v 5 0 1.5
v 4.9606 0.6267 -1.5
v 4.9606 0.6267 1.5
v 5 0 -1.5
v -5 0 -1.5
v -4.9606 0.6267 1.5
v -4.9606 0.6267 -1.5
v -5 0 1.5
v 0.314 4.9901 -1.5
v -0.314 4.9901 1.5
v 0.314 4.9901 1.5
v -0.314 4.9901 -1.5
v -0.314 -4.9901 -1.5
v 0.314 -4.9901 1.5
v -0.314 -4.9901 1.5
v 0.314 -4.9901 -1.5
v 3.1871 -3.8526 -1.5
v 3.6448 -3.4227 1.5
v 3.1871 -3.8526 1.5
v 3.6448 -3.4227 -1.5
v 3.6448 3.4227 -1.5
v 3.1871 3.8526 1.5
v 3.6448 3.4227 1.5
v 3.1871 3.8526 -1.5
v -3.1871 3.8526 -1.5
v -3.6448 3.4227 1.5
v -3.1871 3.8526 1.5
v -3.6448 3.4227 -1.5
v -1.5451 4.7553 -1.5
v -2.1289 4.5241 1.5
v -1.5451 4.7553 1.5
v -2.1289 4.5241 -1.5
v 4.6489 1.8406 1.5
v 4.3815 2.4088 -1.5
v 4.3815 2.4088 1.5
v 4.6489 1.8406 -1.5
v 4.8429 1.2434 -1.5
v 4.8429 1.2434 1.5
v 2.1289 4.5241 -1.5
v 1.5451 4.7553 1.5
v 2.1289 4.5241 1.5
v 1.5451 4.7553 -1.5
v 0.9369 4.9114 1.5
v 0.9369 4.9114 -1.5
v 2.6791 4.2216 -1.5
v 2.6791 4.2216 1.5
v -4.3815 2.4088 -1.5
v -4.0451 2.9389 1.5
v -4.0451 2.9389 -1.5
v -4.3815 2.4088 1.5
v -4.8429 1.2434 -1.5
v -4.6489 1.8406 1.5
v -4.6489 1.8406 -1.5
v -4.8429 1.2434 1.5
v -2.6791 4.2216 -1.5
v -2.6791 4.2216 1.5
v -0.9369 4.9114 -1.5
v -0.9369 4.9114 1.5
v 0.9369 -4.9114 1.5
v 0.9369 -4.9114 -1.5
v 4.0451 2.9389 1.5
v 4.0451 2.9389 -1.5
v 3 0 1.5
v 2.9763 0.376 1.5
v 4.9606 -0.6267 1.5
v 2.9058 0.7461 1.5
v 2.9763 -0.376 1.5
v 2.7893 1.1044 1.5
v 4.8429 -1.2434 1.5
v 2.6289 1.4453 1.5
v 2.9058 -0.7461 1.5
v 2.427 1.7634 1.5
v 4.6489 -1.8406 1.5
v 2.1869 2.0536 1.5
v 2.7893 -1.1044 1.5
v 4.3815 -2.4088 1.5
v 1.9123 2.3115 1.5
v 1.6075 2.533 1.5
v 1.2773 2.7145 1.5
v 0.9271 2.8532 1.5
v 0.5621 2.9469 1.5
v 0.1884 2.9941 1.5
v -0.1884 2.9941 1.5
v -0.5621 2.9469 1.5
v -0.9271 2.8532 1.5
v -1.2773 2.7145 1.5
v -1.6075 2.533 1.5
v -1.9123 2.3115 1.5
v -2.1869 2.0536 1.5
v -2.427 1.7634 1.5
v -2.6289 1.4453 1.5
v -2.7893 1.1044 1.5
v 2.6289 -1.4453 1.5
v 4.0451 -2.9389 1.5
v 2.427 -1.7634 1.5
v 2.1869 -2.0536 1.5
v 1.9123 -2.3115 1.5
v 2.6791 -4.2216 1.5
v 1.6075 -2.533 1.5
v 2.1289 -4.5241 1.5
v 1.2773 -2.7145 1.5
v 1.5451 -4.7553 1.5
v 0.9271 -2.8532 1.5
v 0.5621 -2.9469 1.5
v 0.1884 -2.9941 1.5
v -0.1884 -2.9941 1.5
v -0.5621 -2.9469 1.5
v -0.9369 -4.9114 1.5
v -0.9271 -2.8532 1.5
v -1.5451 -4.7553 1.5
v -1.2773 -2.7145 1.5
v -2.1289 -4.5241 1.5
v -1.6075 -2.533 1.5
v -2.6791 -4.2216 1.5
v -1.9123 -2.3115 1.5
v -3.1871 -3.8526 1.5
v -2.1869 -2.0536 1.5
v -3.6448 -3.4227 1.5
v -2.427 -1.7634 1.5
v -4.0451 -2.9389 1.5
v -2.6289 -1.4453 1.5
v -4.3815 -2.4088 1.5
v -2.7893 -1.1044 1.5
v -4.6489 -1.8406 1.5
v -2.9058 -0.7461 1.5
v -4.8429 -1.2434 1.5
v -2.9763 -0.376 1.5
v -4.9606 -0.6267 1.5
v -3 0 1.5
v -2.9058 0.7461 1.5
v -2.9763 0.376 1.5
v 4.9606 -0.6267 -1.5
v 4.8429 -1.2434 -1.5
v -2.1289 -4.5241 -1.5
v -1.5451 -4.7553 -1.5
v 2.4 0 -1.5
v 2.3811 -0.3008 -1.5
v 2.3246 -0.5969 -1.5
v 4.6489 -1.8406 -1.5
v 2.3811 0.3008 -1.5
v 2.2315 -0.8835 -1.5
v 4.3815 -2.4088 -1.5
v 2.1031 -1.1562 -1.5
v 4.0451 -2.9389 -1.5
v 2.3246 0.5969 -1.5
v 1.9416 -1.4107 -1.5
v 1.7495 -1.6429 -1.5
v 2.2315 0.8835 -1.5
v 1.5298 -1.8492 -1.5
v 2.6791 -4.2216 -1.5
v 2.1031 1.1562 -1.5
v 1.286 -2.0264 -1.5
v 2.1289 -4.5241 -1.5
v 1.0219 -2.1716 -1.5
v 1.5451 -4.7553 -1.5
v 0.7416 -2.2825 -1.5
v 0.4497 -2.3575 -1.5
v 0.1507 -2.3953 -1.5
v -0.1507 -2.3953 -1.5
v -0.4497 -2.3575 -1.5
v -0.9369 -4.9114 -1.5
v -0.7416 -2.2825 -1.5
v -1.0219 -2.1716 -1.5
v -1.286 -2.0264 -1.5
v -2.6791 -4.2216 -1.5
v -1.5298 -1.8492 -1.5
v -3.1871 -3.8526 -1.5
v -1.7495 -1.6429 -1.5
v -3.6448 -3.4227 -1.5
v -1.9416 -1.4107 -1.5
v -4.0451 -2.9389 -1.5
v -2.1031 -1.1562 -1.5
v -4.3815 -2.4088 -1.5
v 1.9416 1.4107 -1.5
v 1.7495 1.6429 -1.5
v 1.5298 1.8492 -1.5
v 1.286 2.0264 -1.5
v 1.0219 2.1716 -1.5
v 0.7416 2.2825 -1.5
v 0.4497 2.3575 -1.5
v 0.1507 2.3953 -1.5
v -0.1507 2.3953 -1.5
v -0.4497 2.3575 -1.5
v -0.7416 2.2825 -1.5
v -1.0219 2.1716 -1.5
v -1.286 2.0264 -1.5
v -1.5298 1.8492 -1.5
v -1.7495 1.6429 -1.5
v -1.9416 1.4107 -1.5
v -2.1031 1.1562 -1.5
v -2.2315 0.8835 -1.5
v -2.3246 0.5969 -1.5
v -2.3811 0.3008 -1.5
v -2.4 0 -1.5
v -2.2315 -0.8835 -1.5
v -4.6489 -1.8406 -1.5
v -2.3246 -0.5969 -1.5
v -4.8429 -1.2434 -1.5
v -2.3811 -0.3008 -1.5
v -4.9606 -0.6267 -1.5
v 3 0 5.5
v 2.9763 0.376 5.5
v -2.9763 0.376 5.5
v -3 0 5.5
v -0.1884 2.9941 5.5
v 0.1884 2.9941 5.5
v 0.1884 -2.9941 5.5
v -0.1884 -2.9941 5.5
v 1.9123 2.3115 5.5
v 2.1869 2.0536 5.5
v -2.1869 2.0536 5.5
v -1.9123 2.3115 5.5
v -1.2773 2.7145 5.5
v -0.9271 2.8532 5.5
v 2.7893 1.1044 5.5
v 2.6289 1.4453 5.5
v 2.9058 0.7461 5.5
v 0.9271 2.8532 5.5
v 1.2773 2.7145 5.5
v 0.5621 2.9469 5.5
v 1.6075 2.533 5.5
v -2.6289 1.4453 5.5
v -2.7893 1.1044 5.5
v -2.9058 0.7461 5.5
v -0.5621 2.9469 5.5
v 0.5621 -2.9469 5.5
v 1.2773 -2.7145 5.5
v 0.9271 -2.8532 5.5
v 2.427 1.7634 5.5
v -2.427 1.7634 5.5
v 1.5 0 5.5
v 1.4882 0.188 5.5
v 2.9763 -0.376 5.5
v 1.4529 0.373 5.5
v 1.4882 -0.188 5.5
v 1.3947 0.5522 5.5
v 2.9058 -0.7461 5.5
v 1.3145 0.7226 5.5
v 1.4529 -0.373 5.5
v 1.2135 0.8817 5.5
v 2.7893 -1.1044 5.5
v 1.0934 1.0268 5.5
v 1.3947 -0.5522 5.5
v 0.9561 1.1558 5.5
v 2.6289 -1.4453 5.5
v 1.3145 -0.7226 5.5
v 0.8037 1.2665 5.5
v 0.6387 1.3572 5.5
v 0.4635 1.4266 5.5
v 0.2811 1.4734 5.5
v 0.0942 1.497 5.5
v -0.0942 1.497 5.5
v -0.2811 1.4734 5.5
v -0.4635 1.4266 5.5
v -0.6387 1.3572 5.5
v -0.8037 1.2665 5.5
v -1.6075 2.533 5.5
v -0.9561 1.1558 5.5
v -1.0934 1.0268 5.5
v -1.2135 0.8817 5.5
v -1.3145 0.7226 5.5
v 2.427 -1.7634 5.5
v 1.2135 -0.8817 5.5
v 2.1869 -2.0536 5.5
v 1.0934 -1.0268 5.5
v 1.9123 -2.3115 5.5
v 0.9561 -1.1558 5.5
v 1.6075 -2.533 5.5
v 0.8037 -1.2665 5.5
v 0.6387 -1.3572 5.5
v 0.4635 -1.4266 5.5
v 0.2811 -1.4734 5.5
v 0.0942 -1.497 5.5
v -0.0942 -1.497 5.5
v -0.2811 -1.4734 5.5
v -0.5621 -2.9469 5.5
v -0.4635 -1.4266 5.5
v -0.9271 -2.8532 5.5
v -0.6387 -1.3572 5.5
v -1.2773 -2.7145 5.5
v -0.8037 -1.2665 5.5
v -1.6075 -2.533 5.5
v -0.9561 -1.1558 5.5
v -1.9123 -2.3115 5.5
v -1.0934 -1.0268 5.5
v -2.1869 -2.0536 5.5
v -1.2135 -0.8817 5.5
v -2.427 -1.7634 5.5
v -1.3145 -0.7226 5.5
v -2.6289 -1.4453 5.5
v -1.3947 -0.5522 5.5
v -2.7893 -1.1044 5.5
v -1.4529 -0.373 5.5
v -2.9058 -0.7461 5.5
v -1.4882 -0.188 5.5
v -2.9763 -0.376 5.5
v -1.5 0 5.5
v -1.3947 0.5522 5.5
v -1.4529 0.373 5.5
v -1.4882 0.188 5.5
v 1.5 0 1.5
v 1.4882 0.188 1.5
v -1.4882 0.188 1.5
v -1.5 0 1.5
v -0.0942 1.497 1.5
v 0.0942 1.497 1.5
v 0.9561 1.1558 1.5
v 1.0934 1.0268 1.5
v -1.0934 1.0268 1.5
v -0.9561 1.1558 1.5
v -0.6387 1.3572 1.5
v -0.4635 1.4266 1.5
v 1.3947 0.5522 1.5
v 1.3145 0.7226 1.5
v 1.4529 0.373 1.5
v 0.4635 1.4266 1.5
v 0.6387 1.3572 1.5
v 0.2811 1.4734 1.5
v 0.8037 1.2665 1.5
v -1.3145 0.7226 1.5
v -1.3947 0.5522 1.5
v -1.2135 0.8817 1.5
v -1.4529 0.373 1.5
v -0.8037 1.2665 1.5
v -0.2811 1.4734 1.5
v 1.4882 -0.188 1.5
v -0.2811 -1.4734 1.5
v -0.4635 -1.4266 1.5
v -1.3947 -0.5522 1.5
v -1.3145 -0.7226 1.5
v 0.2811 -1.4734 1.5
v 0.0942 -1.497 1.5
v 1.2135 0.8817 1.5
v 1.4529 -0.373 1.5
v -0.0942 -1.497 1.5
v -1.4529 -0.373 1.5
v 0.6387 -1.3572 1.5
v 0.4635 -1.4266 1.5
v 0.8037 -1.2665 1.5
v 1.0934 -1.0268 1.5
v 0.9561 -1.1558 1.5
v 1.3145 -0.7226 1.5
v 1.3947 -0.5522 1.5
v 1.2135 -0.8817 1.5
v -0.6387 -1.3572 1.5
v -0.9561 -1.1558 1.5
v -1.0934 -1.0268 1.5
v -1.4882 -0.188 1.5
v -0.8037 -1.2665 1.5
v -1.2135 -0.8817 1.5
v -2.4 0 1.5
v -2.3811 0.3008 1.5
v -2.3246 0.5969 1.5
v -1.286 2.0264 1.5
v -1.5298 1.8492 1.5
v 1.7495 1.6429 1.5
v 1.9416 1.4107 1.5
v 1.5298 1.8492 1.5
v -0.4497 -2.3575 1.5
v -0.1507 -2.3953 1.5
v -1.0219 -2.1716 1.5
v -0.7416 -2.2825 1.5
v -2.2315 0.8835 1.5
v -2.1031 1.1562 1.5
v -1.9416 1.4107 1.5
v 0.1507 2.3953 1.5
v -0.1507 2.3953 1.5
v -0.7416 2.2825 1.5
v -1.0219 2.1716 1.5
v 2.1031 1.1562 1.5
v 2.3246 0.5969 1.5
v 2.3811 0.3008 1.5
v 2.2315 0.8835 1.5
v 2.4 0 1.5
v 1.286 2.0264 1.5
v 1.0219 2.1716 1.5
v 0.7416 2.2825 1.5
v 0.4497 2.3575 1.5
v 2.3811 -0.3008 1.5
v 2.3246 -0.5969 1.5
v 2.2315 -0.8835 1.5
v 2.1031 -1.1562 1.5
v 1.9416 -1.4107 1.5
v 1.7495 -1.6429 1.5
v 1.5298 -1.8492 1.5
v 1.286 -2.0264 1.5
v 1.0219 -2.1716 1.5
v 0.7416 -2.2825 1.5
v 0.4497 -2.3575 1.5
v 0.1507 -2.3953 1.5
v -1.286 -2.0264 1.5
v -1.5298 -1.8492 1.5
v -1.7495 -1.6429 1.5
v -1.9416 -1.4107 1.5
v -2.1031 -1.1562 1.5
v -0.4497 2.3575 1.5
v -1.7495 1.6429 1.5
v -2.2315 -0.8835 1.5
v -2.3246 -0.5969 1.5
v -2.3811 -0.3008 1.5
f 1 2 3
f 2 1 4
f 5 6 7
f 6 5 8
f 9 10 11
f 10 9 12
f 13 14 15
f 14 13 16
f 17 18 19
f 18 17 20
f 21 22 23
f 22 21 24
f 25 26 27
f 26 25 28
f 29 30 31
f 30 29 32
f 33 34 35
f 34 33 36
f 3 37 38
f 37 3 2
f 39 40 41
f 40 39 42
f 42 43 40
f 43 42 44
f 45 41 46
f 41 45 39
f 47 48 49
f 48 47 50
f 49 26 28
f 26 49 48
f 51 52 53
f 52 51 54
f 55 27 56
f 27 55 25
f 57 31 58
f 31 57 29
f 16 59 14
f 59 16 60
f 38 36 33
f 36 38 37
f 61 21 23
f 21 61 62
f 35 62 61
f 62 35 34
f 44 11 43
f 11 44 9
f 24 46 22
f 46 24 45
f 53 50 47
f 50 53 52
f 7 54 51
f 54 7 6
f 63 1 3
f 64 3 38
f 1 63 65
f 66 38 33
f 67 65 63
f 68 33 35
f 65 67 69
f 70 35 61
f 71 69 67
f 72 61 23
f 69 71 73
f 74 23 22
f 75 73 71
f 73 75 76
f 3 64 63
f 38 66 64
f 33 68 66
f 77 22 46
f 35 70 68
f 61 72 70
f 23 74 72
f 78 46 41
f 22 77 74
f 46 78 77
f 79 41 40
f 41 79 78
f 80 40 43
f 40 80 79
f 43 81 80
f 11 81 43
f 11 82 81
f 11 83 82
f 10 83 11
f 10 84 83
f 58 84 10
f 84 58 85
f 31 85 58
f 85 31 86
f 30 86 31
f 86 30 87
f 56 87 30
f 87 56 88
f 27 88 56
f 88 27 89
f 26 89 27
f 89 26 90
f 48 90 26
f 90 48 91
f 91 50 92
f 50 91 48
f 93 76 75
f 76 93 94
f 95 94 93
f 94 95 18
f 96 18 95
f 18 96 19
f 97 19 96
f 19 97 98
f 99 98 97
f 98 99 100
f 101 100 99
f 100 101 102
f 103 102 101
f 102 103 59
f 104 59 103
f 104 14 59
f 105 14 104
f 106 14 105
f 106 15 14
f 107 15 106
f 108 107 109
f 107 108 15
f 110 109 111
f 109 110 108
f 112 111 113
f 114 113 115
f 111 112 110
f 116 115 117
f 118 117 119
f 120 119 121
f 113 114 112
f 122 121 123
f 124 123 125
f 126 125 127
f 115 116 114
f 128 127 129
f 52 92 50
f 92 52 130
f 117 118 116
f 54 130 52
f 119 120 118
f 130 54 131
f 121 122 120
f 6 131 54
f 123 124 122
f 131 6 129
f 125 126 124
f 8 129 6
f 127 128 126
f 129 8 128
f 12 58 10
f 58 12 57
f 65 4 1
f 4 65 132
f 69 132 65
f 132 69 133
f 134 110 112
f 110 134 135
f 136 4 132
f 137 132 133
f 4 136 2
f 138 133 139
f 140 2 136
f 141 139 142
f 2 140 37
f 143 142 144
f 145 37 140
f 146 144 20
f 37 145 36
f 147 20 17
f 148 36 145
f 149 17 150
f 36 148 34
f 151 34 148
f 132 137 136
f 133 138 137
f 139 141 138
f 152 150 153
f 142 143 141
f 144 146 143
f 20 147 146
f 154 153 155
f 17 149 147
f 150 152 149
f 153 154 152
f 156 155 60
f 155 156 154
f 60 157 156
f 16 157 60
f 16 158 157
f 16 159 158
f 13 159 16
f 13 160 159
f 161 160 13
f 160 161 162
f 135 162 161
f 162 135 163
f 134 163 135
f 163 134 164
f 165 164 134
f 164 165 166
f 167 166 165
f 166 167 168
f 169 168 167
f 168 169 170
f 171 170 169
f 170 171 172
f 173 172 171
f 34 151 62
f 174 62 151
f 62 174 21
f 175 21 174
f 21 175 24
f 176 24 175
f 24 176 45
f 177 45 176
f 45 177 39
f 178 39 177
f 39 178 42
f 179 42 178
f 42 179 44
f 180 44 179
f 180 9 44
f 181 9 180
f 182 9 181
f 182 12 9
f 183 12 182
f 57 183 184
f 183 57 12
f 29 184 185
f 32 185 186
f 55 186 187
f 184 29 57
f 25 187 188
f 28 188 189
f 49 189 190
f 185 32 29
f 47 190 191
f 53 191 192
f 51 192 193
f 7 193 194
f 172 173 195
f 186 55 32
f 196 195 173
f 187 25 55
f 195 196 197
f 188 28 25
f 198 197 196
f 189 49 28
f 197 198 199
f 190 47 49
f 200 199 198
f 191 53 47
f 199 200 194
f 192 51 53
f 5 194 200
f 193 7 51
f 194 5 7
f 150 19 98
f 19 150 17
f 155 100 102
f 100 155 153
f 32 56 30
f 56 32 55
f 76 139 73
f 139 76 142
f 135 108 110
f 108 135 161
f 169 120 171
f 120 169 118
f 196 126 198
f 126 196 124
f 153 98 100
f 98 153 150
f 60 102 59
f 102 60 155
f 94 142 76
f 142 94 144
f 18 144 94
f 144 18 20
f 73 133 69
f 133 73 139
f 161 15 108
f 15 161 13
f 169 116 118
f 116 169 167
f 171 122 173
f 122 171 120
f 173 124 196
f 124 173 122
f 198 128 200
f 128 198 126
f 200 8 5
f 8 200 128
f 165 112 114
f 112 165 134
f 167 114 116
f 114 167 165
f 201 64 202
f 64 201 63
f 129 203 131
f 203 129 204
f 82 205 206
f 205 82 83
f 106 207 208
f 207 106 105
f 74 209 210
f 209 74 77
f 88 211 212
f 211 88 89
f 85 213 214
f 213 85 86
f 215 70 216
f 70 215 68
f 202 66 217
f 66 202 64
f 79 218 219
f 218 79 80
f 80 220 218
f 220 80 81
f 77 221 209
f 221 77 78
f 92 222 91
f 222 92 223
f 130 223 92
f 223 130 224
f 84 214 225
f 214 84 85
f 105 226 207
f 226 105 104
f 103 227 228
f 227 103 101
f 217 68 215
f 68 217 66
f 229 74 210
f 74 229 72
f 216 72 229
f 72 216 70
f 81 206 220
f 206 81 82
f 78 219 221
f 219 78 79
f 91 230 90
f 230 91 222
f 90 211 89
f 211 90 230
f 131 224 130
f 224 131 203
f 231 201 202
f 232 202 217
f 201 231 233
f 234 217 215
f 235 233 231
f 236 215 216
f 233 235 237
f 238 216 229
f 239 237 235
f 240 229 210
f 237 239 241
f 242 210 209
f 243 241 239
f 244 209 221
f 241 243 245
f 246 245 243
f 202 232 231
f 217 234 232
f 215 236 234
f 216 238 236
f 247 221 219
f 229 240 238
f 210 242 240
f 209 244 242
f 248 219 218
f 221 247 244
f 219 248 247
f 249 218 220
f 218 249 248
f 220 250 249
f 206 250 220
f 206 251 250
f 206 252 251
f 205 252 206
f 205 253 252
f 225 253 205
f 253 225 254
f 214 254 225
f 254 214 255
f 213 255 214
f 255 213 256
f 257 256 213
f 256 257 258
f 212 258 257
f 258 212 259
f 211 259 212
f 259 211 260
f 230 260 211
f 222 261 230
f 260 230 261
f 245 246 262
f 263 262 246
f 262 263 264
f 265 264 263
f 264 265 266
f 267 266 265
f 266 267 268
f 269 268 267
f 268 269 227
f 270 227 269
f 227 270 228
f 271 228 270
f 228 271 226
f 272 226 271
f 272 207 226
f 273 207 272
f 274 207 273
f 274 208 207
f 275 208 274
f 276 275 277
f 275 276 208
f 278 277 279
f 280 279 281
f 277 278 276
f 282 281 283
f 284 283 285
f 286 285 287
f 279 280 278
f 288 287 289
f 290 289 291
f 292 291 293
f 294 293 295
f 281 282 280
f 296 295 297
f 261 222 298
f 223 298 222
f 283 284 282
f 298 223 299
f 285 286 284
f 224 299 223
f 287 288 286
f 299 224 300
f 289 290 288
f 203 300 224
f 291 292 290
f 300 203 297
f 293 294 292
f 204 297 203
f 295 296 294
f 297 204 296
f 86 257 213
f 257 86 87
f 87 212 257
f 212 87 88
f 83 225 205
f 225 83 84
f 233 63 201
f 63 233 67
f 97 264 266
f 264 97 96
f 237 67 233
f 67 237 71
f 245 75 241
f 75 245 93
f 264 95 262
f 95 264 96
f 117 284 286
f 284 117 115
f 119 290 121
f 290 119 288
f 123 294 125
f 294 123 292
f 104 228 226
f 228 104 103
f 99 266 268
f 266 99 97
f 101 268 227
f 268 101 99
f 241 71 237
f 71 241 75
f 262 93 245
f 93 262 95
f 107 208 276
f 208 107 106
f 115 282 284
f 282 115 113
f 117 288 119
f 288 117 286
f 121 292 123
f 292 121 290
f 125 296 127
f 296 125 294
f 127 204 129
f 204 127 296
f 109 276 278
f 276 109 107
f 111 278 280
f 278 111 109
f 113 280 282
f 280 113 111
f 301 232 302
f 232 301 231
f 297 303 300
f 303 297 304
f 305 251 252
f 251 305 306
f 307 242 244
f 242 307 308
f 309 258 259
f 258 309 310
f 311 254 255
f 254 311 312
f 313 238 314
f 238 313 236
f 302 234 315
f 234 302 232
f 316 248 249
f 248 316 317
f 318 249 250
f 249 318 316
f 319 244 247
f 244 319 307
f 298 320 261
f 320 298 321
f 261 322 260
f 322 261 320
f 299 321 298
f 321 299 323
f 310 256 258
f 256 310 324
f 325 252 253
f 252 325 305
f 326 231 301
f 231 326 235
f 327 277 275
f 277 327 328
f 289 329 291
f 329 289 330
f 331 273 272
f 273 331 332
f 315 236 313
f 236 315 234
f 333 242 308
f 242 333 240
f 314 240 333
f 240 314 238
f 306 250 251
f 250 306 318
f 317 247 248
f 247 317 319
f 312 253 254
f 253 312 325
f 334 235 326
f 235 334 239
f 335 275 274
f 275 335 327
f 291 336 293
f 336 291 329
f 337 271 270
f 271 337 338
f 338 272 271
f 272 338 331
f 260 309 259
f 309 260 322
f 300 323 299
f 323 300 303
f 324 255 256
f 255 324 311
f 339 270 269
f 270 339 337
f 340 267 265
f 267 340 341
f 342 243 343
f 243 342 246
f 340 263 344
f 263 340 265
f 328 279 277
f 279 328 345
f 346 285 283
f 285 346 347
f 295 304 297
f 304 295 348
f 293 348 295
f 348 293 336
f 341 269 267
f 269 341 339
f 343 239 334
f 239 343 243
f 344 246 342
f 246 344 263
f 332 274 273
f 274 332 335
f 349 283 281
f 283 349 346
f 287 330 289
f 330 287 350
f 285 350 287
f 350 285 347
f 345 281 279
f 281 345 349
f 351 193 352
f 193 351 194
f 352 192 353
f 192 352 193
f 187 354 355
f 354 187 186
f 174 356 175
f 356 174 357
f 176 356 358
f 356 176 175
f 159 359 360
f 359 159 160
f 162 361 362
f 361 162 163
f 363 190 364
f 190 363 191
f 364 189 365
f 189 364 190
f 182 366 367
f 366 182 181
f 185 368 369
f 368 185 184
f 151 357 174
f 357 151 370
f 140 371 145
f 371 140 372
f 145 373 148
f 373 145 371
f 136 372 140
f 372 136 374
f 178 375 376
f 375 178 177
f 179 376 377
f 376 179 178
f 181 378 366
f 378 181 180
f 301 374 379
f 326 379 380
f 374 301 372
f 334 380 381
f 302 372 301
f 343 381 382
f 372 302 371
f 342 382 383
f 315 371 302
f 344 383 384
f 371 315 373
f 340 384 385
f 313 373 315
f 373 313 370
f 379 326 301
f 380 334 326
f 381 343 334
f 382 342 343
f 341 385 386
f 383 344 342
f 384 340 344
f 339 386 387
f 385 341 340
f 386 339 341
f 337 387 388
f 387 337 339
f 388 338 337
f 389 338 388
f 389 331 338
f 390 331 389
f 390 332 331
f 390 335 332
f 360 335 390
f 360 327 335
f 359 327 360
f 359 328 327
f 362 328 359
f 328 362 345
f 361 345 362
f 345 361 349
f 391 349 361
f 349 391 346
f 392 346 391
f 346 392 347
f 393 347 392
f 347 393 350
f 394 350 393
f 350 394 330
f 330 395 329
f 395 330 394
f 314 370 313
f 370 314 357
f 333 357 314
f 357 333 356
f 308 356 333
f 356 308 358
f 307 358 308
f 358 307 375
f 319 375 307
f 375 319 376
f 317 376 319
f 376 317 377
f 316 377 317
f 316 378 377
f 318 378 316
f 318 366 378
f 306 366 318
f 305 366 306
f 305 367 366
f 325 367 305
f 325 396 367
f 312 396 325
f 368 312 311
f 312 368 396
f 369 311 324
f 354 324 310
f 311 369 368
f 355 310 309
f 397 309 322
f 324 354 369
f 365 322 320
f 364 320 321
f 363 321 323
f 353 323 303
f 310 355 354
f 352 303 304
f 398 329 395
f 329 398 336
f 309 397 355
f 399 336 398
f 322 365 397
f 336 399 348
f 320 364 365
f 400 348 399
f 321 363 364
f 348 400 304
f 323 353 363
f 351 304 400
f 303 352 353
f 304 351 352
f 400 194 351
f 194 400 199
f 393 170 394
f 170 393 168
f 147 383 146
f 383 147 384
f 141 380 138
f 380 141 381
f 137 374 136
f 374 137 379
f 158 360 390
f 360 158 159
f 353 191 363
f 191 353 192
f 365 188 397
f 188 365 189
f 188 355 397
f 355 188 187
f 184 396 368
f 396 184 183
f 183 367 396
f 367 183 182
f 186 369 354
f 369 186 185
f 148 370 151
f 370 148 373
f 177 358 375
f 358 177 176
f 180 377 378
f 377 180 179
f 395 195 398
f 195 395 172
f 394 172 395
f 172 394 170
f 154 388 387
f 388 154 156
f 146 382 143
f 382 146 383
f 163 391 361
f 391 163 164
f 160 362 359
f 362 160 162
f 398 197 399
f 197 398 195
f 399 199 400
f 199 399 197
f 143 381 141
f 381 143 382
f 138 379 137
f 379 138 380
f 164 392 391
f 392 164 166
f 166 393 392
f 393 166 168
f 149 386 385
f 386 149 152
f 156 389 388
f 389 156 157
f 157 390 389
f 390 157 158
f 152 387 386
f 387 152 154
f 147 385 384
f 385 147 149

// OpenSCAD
$fn = 50;


difference() {
	union() {
		translate(v = [0, 0, -1.5000000000]) {
			rotate(a = [0, 0, 0]) {
				cylinder(h = 3, r = 5.0000000000);
			}
		}
		translate(v = [0, 0, -1.5000000000]) {
			rotate(a = [0, 0, 0]) {
				cylinder(h = 7, r = 3.0000000000);
			}
		}
	}
	union() {
		translate(v = [0, 0, -125.0000000000]) {
			rotate(a = [0, 0, 0]) {
				cylinder(h = 250, r = 1.5000000000);
			}
		}
		#translate(v = [0, 0, 1.5000000000]) {
			rotate(a = [0, 180, 0]) {
				cylinder(h = 3, r1 = 2.4000000000, r2 = 2.4000000000);
			}
		}
		#translate(v = [0, 0, 5.5000000000]) {
			rotate(a = [0, 180, 0]) {
				cylinder(h = 7, r = 1.5000000000);
			}
		}
	}
}
